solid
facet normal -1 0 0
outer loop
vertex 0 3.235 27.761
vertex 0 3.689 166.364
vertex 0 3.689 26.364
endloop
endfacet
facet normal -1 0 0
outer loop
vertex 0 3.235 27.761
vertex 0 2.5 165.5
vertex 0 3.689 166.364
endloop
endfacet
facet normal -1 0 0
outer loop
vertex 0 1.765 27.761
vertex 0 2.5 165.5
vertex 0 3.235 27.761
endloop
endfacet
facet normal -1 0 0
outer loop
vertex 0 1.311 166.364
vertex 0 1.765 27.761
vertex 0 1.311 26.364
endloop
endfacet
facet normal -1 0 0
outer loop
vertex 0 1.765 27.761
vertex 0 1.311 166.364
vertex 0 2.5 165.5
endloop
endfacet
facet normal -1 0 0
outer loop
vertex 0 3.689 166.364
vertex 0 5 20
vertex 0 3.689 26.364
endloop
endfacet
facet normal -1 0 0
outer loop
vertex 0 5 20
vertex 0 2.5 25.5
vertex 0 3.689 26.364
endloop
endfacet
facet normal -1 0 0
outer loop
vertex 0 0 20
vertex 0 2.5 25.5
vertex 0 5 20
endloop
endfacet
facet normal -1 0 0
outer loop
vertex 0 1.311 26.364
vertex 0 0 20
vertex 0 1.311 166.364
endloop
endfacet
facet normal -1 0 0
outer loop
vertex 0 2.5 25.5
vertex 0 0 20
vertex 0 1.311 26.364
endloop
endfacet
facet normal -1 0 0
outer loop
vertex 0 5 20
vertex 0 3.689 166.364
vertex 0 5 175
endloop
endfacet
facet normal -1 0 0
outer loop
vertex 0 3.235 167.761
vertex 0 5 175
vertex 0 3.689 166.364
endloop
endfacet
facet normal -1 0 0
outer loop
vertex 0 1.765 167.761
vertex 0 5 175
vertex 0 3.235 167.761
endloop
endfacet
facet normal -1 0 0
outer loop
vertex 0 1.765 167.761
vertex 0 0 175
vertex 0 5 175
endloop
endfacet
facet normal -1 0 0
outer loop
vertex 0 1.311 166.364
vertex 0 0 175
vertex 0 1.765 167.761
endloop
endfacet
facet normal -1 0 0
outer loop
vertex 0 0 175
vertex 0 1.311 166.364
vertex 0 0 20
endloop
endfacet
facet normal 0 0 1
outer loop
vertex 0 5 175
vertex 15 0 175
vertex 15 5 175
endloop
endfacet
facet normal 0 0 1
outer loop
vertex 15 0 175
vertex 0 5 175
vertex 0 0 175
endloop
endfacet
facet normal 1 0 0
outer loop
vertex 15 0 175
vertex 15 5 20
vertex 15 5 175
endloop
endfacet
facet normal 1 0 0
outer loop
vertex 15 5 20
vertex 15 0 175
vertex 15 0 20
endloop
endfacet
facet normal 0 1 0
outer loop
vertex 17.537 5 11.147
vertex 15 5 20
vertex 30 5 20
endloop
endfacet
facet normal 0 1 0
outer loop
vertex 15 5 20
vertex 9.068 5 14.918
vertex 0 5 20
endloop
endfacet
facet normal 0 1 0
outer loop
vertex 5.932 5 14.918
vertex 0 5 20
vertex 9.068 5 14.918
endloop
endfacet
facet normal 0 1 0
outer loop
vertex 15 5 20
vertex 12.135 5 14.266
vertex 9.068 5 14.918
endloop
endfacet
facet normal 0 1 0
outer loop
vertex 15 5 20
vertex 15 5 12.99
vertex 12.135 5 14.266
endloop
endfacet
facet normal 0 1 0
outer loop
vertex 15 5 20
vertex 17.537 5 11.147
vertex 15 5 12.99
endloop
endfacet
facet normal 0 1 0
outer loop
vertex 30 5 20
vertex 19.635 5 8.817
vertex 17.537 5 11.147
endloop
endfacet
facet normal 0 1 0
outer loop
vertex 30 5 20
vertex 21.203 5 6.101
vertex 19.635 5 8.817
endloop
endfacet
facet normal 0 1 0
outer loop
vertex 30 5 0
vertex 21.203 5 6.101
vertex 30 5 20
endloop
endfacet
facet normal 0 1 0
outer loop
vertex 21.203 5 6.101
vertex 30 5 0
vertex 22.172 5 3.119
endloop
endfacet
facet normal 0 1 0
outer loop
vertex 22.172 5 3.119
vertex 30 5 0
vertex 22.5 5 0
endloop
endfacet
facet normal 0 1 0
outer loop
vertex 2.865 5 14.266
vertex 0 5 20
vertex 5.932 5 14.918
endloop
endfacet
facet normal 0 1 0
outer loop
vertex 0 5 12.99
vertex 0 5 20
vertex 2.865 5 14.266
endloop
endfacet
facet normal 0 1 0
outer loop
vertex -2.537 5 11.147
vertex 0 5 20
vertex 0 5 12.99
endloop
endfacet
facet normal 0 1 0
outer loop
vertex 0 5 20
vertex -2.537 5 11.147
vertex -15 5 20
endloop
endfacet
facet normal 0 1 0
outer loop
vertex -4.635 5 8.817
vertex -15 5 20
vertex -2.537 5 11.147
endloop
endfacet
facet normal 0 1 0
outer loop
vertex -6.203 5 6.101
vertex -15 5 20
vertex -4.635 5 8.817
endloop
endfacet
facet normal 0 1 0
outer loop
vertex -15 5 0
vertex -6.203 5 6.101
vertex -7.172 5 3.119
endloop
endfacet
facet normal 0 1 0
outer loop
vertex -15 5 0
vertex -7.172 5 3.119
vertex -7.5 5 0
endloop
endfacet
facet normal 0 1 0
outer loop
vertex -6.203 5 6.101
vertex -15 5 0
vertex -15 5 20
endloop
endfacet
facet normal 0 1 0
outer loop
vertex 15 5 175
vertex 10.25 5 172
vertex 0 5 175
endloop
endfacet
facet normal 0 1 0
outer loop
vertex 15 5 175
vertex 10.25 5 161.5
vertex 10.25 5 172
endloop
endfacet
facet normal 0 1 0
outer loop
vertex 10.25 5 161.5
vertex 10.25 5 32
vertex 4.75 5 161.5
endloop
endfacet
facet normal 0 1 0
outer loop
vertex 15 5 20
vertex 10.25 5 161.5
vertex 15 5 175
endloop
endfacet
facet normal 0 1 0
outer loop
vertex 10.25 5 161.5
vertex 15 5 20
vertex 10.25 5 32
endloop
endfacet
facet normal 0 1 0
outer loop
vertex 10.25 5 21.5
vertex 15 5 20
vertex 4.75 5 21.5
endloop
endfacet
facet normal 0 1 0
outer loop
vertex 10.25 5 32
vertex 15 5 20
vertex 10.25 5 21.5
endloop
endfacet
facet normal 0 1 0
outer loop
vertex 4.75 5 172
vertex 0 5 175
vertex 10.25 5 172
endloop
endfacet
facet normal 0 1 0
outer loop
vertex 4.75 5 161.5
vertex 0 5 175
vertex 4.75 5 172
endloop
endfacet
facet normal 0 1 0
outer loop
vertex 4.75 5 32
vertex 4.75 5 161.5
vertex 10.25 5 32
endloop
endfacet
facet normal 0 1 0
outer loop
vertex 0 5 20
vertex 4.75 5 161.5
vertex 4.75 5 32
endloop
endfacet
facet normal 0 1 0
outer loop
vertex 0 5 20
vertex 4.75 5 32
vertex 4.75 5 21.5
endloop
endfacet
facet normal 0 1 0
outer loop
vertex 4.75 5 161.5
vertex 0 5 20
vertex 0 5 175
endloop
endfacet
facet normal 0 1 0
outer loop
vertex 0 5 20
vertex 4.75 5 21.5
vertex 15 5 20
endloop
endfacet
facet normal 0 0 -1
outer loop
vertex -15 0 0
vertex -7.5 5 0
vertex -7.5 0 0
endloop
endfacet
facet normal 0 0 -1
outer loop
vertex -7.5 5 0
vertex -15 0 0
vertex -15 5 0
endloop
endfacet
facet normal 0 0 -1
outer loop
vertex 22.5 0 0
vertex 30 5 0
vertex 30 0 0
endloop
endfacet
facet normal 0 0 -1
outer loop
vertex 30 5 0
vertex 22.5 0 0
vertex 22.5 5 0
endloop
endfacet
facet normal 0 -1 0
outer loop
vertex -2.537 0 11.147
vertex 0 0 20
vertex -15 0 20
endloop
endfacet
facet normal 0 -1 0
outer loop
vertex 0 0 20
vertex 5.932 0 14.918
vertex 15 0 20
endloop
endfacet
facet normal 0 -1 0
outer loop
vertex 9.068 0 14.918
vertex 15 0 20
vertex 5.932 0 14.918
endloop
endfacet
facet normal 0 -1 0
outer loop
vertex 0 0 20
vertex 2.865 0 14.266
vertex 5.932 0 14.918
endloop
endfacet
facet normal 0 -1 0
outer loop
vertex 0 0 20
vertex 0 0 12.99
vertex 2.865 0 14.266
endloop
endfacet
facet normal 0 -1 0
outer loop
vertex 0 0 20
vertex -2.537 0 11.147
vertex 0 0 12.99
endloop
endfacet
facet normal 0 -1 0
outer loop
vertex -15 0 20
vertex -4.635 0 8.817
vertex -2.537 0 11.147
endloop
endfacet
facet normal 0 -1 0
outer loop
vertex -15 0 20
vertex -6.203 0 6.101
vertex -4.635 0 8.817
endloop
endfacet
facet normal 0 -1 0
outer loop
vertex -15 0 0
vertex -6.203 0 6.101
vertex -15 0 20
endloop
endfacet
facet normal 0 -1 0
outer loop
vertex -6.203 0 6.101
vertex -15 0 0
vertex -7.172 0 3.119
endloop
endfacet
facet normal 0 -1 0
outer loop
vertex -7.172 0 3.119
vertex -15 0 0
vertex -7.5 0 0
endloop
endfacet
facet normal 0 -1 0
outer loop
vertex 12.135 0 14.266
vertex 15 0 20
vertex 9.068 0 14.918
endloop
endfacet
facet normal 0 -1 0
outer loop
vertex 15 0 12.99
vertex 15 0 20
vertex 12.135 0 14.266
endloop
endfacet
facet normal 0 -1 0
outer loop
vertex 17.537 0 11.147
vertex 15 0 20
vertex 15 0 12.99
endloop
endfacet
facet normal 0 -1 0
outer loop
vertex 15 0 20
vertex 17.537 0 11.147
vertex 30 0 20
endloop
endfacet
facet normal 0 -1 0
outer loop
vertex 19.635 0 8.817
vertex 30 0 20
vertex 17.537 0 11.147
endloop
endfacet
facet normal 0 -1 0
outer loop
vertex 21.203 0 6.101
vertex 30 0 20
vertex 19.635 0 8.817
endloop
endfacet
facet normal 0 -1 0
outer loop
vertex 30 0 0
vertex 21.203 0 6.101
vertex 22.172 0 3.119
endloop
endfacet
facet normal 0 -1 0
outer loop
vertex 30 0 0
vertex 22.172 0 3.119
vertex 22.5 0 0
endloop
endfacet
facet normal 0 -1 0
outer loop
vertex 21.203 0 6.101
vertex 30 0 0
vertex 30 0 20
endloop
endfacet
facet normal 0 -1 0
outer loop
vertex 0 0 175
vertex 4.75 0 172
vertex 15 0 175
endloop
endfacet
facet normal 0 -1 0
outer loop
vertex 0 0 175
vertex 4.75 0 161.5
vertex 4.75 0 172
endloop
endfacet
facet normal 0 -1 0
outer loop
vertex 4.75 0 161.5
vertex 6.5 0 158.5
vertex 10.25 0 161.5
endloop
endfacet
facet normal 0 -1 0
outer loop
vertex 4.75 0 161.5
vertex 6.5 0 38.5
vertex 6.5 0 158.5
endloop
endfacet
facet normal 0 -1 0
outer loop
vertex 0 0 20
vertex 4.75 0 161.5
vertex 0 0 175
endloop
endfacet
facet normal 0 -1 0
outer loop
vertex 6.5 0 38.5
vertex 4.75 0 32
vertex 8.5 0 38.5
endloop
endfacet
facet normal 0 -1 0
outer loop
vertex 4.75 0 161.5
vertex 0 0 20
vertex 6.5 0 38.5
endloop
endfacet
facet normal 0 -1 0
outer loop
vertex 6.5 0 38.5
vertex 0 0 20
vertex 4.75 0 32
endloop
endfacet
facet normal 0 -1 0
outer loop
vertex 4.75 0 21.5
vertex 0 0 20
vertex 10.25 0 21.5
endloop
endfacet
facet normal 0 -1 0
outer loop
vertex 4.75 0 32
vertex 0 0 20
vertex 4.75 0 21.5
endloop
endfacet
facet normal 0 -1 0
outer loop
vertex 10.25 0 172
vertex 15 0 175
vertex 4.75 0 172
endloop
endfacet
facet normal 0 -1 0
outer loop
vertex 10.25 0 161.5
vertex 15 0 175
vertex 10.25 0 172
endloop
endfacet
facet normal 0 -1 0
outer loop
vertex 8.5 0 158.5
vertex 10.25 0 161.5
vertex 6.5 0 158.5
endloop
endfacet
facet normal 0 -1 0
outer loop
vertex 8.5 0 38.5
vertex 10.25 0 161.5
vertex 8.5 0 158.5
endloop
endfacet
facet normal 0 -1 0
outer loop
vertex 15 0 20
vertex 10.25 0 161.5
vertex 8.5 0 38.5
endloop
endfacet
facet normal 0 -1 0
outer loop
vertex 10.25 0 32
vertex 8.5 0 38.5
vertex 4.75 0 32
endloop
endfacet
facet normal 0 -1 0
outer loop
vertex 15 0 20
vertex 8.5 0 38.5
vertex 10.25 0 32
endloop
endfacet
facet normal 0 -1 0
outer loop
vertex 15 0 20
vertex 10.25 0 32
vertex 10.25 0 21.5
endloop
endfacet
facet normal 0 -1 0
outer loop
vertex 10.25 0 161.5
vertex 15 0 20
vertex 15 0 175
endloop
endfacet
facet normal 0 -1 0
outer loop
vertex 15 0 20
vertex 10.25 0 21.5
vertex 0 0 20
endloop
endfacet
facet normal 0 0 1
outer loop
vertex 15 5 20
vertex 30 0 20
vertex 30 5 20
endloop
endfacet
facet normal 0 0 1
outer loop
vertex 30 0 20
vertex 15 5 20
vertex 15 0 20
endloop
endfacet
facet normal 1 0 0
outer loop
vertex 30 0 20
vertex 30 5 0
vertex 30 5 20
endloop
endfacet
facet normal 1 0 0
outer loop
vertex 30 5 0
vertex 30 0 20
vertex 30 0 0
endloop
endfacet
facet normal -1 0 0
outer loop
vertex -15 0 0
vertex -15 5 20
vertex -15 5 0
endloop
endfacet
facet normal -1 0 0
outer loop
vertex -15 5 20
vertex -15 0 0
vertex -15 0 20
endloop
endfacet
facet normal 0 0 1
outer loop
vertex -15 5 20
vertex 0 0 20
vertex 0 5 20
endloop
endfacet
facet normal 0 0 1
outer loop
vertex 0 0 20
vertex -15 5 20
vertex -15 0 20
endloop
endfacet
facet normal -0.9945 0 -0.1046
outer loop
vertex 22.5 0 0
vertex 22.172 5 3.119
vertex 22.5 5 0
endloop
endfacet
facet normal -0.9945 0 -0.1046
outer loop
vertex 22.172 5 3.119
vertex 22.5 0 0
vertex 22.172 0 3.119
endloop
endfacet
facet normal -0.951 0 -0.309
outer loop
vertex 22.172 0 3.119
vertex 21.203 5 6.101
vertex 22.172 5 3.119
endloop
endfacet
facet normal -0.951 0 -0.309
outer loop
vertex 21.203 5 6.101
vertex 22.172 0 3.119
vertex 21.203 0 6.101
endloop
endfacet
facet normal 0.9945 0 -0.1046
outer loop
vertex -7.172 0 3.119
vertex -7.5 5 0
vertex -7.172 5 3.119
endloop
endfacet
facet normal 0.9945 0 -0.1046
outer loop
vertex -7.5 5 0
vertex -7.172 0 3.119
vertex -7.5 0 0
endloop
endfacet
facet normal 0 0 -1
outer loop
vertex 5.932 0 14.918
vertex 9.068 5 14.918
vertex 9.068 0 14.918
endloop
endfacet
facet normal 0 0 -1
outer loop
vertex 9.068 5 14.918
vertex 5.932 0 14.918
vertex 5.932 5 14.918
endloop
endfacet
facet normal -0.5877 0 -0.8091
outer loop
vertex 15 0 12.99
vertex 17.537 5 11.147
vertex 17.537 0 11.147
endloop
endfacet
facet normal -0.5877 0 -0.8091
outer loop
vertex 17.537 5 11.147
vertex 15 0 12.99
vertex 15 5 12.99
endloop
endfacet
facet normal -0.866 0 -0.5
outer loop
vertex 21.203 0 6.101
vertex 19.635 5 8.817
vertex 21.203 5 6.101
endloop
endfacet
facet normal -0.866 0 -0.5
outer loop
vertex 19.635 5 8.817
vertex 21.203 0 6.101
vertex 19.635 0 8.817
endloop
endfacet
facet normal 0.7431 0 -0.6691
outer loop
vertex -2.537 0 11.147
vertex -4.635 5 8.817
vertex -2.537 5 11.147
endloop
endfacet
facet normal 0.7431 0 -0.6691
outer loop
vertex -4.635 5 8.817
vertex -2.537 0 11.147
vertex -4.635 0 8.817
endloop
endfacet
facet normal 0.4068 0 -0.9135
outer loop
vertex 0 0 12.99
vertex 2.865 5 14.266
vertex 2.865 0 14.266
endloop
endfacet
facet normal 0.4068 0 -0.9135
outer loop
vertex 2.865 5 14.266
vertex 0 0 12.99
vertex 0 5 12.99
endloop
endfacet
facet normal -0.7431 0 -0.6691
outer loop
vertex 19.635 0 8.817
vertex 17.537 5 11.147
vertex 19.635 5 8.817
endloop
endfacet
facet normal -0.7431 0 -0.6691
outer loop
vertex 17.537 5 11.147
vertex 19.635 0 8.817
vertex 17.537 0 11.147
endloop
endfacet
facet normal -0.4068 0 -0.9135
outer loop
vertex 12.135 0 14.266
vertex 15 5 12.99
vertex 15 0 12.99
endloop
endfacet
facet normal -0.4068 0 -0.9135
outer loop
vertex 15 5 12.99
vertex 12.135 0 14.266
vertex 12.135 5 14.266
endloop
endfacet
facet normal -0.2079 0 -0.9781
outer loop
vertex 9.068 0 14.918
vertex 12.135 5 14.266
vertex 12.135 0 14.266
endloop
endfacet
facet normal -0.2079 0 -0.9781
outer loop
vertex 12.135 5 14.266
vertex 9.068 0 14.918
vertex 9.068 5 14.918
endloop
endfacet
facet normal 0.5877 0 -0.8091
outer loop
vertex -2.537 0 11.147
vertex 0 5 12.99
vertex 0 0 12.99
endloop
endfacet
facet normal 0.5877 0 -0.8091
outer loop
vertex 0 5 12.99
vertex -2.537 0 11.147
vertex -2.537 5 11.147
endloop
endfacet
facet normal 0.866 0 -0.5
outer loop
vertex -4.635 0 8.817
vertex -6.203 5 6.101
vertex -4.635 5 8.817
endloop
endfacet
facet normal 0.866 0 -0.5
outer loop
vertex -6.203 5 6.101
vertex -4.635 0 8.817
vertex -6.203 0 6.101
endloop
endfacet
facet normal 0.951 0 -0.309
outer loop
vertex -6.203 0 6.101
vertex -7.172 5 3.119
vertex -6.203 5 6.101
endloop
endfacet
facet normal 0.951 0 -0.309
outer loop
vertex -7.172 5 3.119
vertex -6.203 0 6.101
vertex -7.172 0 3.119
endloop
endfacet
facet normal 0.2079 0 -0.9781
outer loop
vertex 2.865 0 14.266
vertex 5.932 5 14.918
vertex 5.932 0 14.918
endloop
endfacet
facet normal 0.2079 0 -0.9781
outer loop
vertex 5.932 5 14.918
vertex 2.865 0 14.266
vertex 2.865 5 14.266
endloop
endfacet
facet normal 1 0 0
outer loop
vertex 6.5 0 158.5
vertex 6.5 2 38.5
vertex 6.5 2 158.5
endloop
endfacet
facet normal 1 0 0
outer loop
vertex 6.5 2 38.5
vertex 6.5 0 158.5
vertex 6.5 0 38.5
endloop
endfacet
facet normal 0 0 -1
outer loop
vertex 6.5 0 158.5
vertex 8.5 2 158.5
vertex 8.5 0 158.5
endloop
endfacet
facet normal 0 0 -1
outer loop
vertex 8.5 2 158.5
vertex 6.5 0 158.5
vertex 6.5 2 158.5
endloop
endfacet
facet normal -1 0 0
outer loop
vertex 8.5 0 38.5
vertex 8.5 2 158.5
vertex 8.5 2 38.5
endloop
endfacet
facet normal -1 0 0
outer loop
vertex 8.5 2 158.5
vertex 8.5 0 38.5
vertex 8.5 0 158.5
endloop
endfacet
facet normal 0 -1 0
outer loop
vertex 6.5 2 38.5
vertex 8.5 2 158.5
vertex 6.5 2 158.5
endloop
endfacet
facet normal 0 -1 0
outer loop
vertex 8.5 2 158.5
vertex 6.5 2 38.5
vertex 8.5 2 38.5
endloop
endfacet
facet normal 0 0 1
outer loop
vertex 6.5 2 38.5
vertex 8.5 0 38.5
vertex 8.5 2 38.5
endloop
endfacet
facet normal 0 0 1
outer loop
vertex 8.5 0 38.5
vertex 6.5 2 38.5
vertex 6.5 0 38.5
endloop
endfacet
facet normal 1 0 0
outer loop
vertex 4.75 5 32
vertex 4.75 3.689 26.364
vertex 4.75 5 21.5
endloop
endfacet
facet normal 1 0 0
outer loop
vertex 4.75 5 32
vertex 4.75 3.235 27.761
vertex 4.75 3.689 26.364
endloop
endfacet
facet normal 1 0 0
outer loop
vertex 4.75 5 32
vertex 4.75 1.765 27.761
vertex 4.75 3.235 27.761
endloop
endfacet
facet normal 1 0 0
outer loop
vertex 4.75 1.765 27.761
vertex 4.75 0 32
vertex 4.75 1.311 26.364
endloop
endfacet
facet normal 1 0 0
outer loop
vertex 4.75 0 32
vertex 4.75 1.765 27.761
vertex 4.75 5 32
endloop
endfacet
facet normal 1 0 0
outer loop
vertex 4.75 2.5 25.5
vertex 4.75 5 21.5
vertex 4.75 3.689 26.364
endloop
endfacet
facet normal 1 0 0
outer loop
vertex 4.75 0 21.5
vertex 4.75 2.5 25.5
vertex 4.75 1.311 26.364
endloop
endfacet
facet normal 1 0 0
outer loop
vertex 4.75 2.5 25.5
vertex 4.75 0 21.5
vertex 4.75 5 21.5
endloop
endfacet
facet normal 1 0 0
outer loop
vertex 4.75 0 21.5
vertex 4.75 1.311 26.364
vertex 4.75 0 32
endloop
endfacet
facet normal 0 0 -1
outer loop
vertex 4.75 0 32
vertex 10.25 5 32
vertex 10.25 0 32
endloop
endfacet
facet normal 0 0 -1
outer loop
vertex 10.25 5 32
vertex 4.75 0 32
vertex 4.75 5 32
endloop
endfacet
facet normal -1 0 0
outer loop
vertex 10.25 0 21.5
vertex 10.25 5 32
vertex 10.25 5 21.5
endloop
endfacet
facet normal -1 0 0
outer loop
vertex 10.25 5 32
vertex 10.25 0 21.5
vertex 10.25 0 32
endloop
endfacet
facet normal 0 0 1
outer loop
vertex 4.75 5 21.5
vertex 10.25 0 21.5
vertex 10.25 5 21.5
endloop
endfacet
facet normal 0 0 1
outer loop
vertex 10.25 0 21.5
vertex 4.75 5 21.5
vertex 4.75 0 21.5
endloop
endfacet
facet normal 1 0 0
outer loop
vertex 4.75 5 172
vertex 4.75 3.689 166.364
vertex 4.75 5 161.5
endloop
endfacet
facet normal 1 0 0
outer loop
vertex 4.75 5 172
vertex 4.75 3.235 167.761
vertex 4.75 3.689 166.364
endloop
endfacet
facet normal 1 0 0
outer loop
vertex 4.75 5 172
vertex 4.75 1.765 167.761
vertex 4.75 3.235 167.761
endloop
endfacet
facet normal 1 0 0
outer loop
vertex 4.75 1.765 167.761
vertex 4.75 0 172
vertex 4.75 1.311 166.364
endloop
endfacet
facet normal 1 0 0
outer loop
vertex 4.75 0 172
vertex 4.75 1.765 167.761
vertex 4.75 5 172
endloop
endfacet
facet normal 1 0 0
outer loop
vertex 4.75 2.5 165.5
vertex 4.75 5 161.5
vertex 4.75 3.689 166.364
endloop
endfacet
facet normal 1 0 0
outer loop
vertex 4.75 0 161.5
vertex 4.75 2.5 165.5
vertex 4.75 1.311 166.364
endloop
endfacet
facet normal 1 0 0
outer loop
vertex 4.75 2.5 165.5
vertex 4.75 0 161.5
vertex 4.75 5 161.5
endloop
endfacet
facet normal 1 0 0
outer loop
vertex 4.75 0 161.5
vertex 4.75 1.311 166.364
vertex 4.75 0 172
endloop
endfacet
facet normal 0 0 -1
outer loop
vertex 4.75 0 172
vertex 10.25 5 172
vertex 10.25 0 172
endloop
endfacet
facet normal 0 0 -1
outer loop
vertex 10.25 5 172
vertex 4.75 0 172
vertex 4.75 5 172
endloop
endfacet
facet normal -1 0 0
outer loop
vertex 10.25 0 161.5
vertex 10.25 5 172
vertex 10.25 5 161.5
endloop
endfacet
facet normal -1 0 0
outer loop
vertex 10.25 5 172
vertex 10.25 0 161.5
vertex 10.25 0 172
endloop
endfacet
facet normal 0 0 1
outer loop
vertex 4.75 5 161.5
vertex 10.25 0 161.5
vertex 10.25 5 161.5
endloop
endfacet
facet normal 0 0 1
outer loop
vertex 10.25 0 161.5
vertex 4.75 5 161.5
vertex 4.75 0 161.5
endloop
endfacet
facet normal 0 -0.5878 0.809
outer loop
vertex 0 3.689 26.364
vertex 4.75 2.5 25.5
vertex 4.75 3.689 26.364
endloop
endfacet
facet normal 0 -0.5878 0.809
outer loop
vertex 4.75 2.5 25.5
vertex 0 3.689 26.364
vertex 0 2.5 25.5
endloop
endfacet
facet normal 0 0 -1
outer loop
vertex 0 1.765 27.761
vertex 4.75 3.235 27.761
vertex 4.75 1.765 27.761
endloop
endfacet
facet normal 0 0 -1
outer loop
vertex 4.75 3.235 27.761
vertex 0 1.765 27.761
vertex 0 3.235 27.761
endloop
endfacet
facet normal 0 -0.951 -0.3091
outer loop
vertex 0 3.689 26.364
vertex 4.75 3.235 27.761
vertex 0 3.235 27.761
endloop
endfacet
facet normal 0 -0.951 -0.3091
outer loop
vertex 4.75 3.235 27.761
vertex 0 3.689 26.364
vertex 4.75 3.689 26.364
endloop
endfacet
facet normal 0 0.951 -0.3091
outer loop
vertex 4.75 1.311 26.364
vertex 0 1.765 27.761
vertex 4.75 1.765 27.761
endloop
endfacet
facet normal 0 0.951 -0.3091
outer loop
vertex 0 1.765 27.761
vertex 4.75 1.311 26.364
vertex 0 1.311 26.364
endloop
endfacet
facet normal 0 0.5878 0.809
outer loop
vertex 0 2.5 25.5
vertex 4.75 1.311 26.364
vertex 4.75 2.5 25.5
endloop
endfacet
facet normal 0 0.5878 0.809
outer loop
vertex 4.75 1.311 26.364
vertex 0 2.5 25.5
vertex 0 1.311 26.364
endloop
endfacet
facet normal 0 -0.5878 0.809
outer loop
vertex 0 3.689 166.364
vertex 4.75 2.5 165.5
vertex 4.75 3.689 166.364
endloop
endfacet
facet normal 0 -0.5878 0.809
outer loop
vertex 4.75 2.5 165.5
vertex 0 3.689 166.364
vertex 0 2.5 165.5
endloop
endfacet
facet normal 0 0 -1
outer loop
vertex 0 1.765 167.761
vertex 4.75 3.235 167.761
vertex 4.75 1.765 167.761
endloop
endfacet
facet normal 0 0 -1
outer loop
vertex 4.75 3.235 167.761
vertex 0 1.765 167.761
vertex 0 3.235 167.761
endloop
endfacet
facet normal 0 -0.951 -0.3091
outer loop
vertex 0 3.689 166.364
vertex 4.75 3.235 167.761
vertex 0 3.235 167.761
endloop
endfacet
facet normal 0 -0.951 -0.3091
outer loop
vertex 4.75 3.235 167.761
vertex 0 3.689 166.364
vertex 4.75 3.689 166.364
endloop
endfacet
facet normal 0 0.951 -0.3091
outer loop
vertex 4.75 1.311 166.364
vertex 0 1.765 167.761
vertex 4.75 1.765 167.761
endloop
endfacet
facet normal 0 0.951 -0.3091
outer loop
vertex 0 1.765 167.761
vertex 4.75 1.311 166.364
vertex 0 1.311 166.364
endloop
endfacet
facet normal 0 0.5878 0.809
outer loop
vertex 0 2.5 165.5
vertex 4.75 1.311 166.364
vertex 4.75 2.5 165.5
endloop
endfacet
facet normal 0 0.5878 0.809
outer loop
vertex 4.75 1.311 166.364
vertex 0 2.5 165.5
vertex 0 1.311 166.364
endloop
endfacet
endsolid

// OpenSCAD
/////////////////////////////////////////////////////////////////////////////////
// Adapter for drilling machine in the embedded lab.
//
// Author:              Maximilian Stiefel
// Last modification:   10.06.2017
/////////////////////////////////////////////////////////////////////////////////

/////////////////////////////////////////////////////////////////////////////////
// Vars
/////////////////////////////////////////////////////////////////////////////////
holder_height = 175;
holder_width = 15;
holder_depth = 5;

notch_height = 120;
notch_width = 2;
notch_depth = 3;

allowance = 0.5;

crossbar_height = 10 + allowance;
crossbar_width = 5 + allowance;
crossbar_depth = 175;

pillar_height = 20;
pillar_width = 15;
pillar_depth = holder_depth;

airpump_diameter = 30;

// Suitable for M3 screw thread
hole_diameter = 2.5;

// Height difference between notch for PCB and the actual holder
height_diff_1 = holder_height - notch_height;

// Height difference between notch position and crossbar_slot
height_diff_2 = 0.7*height_diff_1 - airpump_diameter/2;

// Width difference between crossbar and holder
width_diff_1 = holder_width - crossbar_width; 

// With difference between 
width_diff_2 = pillar_width - holder_width;

/////////////////////////////////////////////////////////////////////////////////
// Action
/////////////////////////////////////////////////////////////////////////////////
difference()
{
union()
{
	// Cube for the base holder
	cube([holder_width, holder_depth, holder_height], center = false);
	// Pillars
	translate([holder_width, 0, 0])
	cube([pillar_width, pillar_depth, pillar_height]);
	translate([-pillar_width , 0, 0])
	cube([pillar_width, pillar_depth, pillar_height]);
}

union()
{
	// Drill holes for air pump
	translate([holder_width/2, holder_depth + 1, 0])
	rotate([90, 0, 0])
	cylinder(h = holder_depth + 2, r = airpump_diameter/2);

	// Cube for notch
	translate([holder_width/2 - notch_width/2, -1, 0.7*height_diff_1])
	cube([notch_width, notch_depth, notch_height], center = false);

	// Slots for crossbars
	translate([width_diff_1/2, -1, height_diff_2/2 + airpump_diameter/2 - crossbar_height/2])
	cube([crossbar_width, holder_depth + 2, crossbar_height], center = false);
	translate([width_diff_1/2, -1, holder_height - 0.3*height_diff_1/2 - crossbar_height/2])
	cube([crossbar_width, holder_depth + 2, crossbar_height], center = false);

	// Drill holes for screws
	translate([-1, holder_depth/2, height_diff_2/2 + airpump_diameter/2])
	rotate([0, 90, 0])
	cylinder(h = 9, r = hole_diameter/2);
	translate([-1, holder_depth/2, holder_height - 0.3*height_diff_1/2])
	rotate([0, 90, 0])
	cylinder(h = 9, r = hole_diameter/2);
}
}
